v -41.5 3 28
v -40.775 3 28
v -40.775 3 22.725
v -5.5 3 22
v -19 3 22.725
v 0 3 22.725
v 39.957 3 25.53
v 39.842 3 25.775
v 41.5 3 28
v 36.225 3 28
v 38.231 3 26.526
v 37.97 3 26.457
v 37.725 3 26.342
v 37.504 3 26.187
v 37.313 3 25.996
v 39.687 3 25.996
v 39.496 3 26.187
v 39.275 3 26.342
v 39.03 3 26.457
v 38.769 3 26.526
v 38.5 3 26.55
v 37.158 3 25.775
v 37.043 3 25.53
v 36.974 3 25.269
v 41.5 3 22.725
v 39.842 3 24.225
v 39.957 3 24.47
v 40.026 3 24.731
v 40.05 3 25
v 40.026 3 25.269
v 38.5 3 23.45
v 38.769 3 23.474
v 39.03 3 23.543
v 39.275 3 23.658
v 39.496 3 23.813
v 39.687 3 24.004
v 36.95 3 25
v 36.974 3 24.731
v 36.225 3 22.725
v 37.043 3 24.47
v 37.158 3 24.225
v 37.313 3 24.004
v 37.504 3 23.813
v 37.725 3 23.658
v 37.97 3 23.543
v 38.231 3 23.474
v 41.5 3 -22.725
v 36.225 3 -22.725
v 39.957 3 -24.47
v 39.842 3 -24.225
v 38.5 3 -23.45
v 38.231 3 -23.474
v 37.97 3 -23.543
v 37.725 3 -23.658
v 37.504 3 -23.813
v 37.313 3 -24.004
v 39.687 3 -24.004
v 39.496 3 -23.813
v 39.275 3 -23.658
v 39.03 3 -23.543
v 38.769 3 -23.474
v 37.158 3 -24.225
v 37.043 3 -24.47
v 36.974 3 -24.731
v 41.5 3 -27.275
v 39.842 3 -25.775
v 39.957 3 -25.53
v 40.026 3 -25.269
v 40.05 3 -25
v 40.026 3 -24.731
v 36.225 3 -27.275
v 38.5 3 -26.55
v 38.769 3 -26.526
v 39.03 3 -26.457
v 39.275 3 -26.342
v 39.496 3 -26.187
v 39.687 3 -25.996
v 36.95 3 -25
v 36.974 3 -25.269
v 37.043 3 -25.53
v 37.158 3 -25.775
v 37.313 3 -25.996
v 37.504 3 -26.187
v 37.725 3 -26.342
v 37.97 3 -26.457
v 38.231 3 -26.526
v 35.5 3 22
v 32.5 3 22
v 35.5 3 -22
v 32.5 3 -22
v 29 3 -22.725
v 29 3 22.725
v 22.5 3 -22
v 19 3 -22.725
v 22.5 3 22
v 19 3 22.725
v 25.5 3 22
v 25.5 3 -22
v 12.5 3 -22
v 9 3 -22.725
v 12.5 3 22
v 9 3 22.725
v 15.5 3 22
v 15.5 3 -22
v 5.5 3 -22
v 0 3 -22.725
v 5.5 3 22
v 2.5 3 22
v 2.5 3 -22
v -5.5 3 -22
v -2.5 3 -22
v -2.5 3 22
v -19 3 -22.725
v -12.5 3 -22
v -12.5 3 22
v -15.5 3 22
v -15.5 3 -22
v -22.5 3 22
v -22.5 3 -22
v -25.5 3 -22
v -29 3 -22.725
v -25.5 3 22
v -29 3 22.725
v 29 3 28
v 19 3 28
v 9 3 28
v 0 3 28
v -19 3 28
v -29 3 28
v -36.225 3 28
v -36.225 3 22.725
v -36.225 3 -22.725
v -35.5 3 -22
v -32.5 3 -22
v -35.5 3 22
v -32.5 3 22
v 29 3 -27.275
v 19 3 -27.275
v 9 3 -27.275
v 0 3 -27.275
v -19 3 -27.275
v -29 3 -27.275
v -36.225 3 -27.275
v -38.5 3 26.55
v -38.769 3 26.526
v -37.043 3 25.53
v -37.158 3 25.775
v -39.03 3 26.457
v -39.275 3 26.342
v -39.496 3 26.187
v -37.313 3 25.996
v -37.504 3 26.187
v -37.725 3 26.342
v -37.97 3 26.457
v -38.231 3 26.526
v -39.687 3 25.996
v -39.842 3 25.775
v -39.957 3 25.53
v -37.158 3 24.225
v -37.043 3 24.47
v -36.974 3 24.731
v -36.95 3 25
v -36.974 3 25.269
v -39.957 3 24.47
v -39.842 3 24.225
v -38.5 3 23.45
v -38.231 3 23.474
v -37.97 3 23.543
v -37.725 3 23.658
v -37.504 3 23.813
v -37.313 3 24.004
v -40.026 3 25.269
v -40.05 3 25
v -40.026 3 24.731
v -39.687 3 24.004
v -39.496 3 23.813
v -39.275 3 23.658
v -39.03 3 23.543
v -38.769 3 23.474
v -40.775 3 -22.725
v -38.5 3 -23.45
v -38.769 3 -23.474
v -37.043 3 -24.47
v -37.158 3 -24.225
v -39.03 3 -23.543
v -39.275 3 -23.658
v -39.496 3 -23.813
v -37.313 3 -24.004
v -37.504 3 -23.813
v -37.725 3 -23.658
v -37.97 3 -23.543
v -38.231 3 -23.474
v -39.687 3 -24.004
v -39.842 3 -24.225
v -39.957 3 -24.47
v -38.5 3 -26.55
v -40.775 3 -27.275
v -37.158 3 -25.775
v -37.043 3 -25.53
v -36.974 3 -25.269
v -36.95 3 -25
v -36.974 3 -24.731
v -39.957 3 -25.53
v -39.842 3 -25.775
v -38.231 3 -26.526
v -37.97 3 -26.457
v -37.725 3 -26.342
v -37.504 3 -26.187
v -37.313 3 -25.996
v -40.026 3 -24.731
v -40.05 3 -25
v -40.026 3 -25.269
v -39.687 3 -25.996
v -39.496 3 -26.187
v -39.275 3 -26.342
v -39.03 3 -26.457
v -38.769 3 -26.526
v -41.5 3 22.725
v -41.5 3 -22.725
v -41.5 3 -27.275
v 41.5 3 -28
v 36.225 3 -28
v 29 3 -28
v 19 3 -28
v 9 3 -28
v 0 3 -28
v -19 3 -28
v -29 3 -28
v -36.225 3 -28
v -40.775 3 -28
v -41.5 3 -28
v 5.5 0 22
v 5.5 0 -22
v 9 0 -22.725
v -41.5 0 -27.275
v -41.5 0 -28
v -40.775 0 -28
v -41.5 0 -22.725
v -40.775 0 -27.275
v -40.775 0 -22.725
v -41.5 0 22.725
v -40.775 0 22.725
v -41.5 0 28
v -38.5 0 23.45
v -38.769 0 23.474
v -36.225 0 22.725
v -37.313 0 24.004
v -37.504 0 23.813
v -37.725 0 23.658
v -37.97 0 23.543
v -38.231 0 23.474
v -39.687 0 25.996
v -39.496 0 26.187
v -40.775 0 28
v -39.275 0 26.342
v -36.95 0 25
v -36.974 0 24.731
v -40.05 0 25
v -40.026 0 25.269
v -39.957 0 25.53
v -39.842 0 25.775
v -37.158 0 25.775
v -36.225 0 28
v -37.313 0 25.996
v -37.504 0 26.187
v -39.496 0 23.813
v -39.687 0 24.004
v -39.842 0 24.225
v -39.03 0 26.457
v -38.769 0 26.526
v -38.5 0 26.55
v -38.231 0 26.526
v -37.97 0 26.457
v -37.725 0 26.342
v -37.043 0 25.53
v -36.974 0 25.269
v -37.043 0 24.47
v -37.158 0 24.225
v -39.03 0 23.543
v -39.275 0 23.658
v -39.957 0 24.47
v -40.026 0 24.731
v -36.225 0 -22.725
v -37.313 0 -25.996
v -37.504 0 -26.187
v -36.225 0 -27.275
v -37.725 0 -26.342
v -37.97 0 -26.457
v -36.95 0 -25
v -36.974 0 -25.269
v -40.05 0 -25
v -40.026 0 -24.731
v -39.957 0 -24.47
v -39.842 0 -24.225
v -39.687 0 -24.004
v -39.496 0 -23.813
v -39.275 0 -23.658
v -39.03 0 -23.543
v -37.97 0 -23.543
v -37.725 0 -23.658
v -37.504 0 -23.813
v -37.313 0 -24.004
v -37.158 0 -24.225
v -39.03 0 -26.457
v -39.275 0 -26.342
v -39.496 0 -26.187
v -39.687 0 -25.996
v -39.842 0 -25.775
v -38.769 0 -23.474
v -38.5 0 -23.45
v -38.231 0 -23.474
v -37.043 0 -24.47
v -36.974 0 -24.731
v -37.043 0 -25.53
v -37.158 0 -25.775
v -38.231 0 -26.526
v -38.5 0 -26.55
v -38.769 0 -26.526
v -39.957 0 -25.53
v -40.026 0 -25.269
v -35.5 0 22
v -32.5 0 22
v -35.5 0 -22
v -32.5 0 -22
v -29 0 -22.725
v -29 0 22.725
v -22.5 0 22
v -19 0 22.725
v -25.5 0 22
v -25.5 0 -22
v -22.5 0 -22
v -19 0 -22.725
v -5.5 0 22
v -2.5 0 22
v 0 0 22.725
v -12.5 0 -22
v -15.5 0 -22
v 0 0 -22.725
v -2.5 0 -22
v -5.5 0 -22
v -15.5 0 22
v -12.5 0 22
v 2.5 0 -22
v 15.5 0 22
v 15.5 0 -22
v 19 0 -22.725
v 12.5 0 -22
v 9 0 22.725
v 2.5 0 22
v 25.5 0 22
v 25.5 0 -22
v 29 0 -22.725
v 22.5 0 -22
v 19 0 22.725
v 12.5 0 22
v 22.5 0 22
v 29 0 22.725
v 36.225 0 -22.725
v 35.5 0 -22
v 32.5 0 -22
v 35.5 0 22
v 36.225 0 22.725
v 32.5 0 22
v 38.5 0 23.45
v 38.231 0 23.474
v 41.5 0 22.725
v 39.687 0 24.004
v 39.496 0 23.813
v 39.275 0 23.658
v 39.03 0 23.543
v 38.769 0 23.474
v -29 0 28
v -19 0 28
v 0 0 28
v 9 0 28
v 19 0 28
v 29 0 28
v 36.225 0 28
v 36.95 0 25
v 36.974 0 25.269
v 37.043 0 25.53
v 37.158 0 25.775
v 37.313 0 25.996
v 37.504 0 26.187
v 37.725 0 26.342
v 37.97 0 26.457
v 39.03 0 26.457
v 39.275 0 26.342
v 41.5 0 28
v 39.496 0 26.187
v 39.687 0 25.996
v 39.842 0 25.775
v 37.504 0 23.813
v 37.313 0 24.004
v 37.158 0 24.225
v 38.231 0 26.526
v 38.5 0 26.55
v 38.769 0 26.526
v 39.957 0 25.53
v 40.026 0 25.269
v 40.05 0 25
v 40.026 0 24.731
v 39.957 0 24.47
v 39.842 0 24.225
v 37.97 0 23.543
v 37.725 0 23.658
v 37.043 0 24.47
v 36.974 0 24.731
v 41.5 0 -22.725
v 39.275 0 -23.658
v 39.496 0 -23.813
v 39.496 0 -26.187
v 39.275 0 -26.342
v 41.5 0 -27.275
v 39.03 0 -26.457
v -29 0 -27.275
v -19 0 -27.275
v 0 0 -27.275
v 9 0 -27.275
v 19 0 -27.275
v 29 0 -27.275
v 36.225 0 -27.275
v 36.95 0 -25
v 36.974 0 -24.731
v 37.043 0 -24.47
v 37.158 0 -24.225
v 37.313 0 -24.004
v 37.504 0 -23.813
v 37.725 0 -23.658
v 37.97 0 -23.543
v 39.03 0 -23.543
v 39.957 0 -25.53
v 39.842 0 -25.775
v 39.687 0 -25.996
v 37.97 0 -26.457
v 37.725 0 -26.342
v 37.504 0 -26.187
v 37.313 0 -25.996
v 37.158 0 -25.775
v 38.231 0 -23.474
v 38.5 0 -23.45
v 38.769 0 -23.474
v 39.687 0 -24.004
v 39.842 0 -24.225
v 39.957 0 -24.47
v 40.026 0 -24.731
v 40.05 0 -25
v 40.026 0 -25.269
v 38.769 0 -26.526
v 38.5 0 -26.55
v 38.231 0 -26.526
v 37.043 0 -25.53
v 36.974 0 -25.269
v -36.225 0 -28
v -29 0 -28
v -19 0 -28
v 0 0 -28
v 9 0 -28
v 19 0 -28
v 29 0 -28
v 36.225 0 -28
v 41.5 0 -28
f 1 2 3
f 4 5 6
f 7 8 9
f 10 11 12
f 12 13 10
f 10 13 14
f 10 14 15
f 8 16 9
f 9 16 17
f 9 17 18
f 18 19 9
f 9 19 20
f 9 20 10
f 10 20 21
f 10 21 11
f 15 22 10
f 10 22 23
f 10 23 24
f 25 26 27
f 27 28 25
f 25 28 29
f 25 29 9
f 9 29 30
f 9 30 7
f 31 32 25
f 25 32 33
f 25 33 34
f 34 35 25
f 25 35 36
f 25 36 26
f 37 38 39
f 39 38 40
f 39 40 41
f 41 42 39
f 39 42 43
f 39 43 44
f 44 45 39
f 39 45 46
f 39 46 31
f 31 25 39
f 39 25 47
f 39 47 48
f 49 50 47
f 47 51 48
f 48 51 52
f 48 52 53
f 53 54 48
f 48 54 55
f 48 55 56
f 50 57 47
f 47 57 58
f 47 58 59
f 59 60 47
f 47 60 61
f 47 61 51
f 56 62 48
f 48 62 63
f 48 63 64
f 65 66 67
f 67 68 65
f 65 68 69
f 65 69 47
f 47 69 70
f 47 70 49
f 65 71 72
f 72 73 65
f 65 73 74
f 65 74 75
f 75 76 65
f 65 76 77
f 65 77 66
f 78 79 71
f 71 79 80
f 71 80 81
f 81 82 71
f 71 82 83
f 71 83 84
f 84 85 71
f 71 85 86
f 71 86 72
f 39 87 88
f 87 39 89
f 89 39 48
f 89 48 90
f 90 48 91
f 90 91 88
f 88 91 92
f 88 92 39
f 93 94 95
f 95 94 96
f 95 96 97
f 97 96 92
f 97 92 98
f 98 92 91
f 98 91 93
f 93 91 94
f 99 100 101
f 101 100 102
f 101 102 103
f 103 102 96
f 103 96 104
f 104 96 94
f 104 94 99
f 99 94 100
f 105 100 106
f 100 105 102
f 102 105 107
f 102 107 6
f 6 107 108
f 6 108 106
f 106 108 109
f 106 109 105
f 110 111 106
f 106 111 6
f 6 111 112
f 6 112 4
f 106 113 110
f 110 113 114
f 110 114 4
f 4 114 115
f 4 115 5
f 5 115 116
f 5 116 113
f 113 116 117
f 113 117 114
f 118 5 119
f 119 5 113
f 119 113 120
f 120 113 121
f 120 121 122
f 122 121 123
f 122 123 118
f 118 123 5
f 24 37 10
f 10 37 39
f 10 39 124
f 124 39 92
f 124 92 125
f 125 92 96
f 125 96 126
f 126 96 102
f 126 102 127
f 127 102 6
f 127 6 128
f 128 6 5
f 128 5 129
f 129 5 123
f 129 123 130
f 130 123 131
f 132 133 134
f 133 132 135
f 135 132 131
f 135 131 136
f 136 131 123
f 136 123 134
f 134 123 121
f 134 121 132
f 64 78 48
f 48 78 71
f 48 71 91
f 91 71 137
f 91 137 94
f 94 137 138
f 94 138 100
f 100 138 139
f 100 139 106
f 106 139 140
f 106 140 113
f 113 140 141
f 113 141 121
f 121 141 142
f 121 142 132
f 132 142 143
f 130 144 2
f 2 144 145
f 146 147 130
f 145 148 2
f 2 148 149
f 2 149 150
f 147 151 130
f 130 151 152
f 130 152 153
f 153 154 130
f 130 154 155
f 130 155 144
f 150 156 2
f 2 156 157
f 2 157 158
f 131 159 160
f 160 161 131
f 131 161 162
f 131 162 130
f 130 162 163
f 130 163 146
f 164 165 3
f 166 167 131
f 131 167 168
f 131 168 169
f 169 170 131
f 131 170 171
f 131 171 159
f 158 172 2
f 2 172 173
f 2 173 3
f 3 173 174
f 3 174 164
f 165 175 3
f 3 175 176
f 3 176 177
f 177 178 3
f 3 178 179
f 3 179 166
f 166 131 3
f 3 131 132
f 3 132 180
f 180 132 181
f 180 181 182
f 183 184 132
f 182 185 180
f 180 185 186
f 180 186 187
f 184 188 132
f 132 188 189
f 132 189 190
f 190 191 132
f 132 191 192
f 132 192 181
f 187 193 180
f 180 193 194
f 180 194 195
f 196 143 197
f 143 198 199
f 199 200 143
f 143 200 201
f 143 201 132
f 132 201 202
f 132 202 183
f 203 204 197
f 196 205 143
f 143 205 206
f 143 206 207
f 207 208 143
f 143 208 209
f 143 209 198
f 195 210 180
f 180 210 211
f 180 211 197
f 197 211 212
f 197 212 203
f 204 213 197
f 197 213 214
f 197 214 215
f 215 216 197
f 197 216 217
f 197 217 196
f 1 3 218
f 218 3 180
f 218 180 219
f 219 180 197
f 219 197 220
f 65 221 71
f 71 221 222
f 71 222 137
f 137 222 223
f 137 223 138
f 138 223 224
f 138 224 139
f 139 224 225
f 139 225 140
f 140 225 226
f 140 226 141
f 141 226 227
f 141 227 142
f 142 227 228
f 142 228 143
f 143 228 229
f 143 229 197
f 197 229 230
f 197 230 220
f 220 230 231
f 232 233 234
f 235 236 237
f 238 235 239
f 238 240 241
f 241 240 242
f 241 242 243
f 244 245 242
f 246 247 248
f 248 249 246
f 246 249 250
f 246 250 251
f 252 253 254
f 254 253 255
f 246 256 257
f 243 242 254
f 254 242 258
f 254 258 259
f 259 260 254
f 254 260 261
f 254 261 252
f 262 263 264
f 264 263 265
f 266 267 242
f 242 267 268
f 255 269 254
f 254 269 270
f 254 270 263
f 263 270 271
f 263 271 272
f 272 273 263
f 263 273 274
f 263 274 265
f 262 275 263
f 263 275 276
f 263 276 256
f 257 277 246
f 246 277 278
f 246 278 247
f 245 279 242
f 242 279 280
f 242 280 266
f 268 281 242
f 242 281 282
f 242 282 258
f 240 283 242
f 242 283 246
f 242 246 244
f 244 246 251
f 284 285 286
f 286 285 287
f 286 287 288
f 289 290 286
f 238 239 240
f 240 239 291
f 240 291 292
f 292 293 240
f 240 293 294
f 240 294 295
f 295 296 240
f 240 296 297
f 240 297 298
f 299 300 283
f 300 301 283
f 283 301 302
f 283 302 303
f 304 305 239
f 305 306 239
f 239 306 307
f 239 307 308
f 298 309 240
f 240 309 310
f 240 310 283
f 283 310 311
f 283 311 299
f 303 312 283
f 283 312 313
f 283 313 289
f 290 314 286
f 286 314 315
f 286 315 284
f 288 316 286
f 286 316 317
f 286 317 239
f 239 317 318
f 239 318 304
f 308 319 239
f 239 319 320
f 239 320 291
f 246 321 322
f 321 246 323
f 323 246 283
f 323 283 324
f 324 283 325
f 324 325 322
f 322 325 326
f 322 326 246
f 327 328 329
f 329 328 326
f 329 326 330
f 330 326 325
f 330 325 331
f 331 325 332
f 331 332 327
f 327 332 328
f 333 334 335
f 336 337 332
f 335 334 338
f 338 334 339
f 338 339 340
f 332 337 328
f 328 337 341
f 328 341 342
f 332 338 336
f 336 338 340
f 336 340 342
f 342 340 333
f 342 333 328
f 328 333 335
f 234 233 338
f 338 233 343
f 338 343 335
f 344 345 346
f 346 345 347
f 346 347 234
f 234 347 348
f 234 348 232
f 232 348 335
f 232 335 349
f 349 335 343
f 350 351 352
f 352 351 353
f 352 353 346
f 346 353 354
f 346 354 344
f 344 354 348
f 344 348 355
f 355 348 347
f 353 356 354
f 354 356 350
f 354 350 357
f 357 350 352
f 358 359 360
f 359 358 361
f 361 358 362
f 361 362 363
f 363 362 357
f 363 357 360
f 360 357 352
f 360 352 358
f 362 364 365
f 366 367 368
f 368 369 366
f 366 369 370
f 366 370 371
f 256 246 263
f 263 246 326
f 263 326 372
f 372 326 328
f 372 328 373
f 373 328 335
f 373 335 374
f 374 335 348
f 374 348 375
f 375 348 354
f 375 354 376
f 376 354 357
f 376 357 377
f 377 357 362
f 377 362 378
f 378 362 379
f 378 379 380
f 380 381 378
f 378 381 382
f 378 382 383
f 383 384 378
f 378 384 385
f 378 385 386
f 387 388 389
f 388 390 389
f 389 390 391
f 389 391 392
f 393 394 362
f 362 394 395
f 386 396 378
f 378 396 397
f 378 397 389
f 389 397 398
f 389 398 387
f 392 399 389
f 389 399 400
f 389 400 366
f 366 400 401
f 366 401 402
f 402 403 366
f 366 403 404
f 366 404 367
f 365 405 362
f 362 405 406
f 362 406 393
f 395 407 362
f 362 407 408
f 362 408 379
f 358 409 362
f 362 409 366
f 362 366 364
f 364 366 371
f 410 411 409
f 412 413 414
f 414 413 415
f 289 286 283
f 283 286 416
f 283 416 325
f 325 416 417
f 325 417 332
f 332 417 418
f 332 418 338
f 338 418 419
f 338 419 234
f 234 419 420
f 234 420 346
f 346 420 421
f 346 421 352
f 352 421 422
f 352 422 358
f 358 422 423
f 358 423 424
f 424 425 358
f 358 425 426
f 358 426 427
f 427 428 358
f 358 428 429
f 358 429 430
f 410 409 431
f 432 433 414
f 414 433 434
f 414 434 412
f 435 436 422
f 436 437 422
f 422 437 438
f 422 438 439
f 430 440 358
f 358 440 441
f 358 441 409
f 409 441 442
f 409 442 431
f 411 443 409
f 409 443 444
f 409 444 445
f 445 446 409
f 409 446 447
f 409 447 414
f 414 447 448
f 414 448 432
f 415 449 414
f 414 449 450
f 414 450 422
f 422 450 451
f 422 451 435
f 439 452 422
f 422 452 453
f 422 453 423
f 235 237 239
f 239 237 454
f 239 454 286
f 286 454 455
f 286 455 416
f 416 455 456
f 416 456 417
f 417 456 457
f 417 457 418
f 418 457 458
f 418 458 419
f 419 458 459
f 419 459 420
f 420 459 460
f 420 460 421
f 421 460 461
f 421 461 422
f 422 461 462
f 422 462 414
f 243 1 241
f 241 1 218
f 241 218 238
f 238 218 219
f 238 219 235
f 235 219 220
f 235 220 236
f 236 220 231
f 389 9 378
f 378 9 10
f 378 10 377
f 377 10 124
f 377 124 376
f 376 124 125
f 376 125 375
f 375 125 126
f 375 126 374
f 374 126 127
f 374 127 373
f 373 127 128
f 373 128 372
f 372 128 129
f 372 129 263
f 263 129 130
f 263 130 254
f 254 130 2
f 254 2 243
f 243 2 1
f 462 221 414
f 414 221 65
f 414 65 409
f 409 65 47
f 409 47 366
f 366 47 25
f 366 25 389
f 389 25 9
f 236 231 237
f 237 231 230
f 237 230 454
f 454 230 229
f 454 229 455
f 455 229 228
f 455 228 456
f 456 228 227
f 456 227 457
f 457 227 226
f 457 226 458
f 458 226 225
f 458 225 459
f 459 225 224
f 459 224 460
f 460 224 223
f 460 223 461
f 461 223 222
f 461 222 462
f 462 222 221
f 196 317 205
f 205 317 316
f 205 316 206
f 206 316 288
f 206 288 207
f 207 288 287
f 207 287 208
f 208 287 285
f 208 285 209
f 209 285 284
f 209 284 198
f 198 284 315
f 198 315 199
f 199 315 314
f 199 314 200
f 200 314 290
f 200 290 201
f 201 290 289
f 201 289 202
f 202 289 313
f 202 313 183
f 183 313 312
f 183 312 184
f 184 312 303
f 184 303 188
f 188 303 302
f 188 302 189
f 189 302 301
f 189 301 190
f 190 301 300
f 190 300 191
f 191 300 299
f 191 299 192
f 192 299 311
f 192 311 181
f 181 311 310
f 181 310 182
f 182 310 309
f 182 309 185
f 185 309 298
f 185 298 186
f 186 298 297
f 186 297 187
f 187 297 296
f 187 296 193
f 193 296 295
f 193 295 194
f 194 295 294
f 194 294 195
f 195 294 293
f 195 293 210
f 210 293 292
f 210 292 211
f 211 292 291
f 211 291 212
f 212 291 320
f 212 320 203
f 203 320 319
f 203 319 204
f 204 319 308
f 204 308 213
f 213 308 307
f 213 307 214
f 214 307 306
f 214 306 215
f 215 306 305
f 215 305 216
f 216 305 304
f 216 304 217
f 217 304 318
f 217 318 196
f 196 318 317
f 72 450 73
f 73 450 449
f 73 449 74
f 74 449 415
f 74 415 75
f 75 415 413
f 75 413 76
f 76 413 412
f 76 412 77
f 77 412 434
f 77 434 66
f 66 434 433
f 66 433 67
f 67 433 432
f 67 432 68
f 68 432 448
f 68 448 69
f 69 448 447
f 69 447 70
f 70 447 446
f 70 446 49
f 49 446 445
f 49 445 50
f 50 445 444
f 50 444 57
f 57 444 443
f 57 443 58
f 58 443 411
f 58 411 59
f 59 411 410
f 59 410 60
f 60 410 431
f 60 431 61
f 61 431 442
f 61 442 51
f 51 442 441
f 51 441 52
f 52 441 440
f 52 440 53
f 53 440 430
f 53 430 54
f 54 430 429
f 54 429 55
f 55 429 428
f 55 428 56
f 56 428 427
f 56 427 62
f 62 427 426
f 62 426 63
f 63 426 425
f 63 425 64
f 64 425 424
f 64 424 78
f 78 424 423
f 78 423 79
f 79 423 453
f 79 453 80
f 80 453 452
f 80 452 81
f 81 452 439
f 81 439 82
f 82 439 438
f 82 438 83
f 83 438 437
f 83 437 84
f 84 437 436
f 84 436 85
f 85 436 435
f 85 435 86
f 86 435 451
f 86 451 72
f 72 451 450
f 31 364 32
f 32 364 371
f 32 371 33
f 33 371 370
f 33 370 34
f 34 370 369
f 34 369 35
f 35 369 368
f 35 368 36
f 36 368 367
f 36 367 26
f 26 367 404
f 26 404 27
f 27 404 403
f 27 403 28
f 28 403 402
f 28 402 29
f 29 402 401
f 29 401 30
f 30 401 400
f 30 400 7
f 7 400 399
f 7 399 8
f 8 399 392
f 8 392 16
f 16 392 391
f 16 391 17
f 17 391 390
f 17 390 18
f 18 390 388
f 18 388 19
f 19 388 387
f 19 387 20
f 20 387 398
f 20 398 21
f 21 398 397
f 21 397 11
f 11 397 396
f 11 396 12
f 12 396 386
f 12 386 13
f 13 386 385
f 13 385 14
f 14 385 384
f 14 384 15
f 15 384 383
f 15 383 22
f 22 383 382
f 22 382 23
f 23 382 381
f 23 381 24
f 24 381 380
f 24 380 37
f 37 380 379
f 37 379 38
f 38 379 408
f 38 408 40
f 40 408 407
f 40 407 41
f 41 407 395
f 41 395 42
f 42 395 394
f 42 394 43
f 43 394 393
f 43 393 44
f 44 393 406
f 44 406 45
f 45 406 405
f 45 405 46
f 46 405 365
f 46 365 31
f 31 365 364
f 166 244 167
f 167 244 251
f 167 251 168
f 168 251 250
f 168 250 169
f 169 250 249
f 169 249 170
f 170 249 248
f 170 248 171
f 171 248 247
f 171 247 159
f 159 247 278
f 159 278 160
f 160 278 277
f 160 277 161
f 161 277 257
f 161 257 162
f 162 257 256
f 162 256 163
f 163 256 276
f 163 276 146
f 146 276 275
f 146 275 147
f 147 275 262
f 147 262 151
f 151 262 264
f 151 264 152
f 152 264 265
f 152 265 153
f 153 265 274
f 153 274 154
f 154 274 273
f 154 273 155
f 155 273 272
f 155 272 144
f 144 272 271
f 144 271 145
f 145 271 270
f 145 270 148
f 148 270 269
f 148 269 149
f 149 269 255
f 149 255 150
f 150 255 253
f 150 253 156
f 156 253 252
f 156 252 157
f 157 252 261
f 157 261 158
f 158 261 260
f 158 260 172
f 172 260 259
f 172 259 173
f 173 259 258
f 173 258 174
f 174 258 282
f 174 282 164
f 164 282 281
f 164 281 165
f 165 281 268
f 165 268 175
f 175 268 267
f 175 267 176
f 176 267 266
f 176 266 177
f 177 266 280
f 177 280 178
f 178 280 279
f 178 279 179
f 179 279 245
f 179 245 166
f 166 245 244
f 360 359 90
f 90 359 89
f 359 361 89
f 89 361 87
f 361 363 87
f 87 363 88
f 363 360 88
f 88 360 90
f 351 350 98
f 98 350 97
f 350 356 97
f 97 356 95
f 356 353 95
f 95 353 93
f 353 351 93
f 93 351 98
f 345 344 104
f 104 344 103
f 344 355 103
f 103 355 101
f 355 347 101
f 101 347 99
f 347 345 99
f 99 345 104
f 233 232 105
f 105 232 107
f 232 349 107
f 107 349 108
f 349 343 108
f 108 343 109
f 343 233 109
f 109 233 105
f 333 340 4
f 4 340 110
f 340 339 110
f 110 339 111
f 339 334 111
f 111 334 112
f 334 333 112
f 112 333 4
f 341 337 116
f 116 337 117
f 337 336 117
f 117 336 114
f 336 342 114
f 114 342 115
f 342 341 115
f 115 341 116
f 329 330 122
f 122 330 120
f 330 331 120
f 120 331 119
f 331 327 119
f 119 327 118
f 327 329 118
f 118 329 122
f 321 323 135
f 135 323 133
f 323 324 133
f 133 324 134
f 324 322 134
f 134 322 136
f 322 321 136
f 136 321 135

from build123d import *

# Parameters (mm, degrees)
SKETCH_1_W          = 83
SKETCH_1_H          = 56
SKETCH_1_R          = 1.55
EXTRUDE_1_DEPTH     = 3
SKETCH_3_W          = 3
SKETCH_3_H          = 44
CUT_EXTRUDE_1_DEPTH = 51.152268144


with BuildPart() as part:
    # ｽｹｯﾁ1 → ﾎﾞｽ - 押し出し1 (new body)
    with BuildSketch(Plane(origin=(0, 0, 0), x_dir=(1, 0, 0), z_dir=(0, 1, 0))):
        Rectangle(SKETCH_1_W, SKETCH_1_H)
        with Locations(Location((-38.5, 25, 0), (0, 0, 270))):
            Circle(SKETCH_1_R, mode=Mode.SUBTRACT)
        with Locations(Location((38.5, 25, 0), (0, 0, 270))):
            Circle(SKETCH_1_R, mode=Mode.SUBTRACT)
        with Locations(Location((38.5, -25, 0), (0, 0, 270))):
            Circle(SKETCH_1_R, mode=Mode.SUBTRACT)
        with Locations(Location((-38.5, -25, 0), (0, 0, 270))):
            Circle(SKETCH_1_R, mode=Mode.SUBTRACT)
    extrude(amount=EXTRUDE_1_DEPTH)

    # ｽｹｯﾁ3 → ｶｯﾄ - 押し出し1 (cut, through all)
    with BuildSketch(Plane(origin=(0, 3, 0), x_dir=(1, 0, 0), z_dir=(0, 1, 0))):
        with Locations((-34, 0)):
            Rectangle(SKETCH_3_W, SKETCH_3_H)
        with Locations((-24, 0)):
            Rectangle(SKETCH_3_W, SKETCH_3_H)
        with Locations((-14, 0)):
            Rectangle(SKETCH_3_W, SKETCH_3_H)
        with Locations((-4, 0)):
            Rectangle(SKETCH_3_W, SKETCH_3_H)
        with Locations((4, 0)):
            Rectangle(SKETCH_3_W, SKETCH_3_H)
        with Locations((14, 0)):
            Rectangle(SKETCH_3_W, SKETCH_3_H)
        with Locations((24, 0)):
            Rectangle(SKETCH_3_W, SKETCH_3_H)
        with Locations((34, 0)):
            Rectangle(SKETCH_3_W, SKETCH_3_H)
    extrude(amount=-CUT_EXTRUDE_1_DEPTH, mode=Mode.SUBTRACT)


solid = part.part
